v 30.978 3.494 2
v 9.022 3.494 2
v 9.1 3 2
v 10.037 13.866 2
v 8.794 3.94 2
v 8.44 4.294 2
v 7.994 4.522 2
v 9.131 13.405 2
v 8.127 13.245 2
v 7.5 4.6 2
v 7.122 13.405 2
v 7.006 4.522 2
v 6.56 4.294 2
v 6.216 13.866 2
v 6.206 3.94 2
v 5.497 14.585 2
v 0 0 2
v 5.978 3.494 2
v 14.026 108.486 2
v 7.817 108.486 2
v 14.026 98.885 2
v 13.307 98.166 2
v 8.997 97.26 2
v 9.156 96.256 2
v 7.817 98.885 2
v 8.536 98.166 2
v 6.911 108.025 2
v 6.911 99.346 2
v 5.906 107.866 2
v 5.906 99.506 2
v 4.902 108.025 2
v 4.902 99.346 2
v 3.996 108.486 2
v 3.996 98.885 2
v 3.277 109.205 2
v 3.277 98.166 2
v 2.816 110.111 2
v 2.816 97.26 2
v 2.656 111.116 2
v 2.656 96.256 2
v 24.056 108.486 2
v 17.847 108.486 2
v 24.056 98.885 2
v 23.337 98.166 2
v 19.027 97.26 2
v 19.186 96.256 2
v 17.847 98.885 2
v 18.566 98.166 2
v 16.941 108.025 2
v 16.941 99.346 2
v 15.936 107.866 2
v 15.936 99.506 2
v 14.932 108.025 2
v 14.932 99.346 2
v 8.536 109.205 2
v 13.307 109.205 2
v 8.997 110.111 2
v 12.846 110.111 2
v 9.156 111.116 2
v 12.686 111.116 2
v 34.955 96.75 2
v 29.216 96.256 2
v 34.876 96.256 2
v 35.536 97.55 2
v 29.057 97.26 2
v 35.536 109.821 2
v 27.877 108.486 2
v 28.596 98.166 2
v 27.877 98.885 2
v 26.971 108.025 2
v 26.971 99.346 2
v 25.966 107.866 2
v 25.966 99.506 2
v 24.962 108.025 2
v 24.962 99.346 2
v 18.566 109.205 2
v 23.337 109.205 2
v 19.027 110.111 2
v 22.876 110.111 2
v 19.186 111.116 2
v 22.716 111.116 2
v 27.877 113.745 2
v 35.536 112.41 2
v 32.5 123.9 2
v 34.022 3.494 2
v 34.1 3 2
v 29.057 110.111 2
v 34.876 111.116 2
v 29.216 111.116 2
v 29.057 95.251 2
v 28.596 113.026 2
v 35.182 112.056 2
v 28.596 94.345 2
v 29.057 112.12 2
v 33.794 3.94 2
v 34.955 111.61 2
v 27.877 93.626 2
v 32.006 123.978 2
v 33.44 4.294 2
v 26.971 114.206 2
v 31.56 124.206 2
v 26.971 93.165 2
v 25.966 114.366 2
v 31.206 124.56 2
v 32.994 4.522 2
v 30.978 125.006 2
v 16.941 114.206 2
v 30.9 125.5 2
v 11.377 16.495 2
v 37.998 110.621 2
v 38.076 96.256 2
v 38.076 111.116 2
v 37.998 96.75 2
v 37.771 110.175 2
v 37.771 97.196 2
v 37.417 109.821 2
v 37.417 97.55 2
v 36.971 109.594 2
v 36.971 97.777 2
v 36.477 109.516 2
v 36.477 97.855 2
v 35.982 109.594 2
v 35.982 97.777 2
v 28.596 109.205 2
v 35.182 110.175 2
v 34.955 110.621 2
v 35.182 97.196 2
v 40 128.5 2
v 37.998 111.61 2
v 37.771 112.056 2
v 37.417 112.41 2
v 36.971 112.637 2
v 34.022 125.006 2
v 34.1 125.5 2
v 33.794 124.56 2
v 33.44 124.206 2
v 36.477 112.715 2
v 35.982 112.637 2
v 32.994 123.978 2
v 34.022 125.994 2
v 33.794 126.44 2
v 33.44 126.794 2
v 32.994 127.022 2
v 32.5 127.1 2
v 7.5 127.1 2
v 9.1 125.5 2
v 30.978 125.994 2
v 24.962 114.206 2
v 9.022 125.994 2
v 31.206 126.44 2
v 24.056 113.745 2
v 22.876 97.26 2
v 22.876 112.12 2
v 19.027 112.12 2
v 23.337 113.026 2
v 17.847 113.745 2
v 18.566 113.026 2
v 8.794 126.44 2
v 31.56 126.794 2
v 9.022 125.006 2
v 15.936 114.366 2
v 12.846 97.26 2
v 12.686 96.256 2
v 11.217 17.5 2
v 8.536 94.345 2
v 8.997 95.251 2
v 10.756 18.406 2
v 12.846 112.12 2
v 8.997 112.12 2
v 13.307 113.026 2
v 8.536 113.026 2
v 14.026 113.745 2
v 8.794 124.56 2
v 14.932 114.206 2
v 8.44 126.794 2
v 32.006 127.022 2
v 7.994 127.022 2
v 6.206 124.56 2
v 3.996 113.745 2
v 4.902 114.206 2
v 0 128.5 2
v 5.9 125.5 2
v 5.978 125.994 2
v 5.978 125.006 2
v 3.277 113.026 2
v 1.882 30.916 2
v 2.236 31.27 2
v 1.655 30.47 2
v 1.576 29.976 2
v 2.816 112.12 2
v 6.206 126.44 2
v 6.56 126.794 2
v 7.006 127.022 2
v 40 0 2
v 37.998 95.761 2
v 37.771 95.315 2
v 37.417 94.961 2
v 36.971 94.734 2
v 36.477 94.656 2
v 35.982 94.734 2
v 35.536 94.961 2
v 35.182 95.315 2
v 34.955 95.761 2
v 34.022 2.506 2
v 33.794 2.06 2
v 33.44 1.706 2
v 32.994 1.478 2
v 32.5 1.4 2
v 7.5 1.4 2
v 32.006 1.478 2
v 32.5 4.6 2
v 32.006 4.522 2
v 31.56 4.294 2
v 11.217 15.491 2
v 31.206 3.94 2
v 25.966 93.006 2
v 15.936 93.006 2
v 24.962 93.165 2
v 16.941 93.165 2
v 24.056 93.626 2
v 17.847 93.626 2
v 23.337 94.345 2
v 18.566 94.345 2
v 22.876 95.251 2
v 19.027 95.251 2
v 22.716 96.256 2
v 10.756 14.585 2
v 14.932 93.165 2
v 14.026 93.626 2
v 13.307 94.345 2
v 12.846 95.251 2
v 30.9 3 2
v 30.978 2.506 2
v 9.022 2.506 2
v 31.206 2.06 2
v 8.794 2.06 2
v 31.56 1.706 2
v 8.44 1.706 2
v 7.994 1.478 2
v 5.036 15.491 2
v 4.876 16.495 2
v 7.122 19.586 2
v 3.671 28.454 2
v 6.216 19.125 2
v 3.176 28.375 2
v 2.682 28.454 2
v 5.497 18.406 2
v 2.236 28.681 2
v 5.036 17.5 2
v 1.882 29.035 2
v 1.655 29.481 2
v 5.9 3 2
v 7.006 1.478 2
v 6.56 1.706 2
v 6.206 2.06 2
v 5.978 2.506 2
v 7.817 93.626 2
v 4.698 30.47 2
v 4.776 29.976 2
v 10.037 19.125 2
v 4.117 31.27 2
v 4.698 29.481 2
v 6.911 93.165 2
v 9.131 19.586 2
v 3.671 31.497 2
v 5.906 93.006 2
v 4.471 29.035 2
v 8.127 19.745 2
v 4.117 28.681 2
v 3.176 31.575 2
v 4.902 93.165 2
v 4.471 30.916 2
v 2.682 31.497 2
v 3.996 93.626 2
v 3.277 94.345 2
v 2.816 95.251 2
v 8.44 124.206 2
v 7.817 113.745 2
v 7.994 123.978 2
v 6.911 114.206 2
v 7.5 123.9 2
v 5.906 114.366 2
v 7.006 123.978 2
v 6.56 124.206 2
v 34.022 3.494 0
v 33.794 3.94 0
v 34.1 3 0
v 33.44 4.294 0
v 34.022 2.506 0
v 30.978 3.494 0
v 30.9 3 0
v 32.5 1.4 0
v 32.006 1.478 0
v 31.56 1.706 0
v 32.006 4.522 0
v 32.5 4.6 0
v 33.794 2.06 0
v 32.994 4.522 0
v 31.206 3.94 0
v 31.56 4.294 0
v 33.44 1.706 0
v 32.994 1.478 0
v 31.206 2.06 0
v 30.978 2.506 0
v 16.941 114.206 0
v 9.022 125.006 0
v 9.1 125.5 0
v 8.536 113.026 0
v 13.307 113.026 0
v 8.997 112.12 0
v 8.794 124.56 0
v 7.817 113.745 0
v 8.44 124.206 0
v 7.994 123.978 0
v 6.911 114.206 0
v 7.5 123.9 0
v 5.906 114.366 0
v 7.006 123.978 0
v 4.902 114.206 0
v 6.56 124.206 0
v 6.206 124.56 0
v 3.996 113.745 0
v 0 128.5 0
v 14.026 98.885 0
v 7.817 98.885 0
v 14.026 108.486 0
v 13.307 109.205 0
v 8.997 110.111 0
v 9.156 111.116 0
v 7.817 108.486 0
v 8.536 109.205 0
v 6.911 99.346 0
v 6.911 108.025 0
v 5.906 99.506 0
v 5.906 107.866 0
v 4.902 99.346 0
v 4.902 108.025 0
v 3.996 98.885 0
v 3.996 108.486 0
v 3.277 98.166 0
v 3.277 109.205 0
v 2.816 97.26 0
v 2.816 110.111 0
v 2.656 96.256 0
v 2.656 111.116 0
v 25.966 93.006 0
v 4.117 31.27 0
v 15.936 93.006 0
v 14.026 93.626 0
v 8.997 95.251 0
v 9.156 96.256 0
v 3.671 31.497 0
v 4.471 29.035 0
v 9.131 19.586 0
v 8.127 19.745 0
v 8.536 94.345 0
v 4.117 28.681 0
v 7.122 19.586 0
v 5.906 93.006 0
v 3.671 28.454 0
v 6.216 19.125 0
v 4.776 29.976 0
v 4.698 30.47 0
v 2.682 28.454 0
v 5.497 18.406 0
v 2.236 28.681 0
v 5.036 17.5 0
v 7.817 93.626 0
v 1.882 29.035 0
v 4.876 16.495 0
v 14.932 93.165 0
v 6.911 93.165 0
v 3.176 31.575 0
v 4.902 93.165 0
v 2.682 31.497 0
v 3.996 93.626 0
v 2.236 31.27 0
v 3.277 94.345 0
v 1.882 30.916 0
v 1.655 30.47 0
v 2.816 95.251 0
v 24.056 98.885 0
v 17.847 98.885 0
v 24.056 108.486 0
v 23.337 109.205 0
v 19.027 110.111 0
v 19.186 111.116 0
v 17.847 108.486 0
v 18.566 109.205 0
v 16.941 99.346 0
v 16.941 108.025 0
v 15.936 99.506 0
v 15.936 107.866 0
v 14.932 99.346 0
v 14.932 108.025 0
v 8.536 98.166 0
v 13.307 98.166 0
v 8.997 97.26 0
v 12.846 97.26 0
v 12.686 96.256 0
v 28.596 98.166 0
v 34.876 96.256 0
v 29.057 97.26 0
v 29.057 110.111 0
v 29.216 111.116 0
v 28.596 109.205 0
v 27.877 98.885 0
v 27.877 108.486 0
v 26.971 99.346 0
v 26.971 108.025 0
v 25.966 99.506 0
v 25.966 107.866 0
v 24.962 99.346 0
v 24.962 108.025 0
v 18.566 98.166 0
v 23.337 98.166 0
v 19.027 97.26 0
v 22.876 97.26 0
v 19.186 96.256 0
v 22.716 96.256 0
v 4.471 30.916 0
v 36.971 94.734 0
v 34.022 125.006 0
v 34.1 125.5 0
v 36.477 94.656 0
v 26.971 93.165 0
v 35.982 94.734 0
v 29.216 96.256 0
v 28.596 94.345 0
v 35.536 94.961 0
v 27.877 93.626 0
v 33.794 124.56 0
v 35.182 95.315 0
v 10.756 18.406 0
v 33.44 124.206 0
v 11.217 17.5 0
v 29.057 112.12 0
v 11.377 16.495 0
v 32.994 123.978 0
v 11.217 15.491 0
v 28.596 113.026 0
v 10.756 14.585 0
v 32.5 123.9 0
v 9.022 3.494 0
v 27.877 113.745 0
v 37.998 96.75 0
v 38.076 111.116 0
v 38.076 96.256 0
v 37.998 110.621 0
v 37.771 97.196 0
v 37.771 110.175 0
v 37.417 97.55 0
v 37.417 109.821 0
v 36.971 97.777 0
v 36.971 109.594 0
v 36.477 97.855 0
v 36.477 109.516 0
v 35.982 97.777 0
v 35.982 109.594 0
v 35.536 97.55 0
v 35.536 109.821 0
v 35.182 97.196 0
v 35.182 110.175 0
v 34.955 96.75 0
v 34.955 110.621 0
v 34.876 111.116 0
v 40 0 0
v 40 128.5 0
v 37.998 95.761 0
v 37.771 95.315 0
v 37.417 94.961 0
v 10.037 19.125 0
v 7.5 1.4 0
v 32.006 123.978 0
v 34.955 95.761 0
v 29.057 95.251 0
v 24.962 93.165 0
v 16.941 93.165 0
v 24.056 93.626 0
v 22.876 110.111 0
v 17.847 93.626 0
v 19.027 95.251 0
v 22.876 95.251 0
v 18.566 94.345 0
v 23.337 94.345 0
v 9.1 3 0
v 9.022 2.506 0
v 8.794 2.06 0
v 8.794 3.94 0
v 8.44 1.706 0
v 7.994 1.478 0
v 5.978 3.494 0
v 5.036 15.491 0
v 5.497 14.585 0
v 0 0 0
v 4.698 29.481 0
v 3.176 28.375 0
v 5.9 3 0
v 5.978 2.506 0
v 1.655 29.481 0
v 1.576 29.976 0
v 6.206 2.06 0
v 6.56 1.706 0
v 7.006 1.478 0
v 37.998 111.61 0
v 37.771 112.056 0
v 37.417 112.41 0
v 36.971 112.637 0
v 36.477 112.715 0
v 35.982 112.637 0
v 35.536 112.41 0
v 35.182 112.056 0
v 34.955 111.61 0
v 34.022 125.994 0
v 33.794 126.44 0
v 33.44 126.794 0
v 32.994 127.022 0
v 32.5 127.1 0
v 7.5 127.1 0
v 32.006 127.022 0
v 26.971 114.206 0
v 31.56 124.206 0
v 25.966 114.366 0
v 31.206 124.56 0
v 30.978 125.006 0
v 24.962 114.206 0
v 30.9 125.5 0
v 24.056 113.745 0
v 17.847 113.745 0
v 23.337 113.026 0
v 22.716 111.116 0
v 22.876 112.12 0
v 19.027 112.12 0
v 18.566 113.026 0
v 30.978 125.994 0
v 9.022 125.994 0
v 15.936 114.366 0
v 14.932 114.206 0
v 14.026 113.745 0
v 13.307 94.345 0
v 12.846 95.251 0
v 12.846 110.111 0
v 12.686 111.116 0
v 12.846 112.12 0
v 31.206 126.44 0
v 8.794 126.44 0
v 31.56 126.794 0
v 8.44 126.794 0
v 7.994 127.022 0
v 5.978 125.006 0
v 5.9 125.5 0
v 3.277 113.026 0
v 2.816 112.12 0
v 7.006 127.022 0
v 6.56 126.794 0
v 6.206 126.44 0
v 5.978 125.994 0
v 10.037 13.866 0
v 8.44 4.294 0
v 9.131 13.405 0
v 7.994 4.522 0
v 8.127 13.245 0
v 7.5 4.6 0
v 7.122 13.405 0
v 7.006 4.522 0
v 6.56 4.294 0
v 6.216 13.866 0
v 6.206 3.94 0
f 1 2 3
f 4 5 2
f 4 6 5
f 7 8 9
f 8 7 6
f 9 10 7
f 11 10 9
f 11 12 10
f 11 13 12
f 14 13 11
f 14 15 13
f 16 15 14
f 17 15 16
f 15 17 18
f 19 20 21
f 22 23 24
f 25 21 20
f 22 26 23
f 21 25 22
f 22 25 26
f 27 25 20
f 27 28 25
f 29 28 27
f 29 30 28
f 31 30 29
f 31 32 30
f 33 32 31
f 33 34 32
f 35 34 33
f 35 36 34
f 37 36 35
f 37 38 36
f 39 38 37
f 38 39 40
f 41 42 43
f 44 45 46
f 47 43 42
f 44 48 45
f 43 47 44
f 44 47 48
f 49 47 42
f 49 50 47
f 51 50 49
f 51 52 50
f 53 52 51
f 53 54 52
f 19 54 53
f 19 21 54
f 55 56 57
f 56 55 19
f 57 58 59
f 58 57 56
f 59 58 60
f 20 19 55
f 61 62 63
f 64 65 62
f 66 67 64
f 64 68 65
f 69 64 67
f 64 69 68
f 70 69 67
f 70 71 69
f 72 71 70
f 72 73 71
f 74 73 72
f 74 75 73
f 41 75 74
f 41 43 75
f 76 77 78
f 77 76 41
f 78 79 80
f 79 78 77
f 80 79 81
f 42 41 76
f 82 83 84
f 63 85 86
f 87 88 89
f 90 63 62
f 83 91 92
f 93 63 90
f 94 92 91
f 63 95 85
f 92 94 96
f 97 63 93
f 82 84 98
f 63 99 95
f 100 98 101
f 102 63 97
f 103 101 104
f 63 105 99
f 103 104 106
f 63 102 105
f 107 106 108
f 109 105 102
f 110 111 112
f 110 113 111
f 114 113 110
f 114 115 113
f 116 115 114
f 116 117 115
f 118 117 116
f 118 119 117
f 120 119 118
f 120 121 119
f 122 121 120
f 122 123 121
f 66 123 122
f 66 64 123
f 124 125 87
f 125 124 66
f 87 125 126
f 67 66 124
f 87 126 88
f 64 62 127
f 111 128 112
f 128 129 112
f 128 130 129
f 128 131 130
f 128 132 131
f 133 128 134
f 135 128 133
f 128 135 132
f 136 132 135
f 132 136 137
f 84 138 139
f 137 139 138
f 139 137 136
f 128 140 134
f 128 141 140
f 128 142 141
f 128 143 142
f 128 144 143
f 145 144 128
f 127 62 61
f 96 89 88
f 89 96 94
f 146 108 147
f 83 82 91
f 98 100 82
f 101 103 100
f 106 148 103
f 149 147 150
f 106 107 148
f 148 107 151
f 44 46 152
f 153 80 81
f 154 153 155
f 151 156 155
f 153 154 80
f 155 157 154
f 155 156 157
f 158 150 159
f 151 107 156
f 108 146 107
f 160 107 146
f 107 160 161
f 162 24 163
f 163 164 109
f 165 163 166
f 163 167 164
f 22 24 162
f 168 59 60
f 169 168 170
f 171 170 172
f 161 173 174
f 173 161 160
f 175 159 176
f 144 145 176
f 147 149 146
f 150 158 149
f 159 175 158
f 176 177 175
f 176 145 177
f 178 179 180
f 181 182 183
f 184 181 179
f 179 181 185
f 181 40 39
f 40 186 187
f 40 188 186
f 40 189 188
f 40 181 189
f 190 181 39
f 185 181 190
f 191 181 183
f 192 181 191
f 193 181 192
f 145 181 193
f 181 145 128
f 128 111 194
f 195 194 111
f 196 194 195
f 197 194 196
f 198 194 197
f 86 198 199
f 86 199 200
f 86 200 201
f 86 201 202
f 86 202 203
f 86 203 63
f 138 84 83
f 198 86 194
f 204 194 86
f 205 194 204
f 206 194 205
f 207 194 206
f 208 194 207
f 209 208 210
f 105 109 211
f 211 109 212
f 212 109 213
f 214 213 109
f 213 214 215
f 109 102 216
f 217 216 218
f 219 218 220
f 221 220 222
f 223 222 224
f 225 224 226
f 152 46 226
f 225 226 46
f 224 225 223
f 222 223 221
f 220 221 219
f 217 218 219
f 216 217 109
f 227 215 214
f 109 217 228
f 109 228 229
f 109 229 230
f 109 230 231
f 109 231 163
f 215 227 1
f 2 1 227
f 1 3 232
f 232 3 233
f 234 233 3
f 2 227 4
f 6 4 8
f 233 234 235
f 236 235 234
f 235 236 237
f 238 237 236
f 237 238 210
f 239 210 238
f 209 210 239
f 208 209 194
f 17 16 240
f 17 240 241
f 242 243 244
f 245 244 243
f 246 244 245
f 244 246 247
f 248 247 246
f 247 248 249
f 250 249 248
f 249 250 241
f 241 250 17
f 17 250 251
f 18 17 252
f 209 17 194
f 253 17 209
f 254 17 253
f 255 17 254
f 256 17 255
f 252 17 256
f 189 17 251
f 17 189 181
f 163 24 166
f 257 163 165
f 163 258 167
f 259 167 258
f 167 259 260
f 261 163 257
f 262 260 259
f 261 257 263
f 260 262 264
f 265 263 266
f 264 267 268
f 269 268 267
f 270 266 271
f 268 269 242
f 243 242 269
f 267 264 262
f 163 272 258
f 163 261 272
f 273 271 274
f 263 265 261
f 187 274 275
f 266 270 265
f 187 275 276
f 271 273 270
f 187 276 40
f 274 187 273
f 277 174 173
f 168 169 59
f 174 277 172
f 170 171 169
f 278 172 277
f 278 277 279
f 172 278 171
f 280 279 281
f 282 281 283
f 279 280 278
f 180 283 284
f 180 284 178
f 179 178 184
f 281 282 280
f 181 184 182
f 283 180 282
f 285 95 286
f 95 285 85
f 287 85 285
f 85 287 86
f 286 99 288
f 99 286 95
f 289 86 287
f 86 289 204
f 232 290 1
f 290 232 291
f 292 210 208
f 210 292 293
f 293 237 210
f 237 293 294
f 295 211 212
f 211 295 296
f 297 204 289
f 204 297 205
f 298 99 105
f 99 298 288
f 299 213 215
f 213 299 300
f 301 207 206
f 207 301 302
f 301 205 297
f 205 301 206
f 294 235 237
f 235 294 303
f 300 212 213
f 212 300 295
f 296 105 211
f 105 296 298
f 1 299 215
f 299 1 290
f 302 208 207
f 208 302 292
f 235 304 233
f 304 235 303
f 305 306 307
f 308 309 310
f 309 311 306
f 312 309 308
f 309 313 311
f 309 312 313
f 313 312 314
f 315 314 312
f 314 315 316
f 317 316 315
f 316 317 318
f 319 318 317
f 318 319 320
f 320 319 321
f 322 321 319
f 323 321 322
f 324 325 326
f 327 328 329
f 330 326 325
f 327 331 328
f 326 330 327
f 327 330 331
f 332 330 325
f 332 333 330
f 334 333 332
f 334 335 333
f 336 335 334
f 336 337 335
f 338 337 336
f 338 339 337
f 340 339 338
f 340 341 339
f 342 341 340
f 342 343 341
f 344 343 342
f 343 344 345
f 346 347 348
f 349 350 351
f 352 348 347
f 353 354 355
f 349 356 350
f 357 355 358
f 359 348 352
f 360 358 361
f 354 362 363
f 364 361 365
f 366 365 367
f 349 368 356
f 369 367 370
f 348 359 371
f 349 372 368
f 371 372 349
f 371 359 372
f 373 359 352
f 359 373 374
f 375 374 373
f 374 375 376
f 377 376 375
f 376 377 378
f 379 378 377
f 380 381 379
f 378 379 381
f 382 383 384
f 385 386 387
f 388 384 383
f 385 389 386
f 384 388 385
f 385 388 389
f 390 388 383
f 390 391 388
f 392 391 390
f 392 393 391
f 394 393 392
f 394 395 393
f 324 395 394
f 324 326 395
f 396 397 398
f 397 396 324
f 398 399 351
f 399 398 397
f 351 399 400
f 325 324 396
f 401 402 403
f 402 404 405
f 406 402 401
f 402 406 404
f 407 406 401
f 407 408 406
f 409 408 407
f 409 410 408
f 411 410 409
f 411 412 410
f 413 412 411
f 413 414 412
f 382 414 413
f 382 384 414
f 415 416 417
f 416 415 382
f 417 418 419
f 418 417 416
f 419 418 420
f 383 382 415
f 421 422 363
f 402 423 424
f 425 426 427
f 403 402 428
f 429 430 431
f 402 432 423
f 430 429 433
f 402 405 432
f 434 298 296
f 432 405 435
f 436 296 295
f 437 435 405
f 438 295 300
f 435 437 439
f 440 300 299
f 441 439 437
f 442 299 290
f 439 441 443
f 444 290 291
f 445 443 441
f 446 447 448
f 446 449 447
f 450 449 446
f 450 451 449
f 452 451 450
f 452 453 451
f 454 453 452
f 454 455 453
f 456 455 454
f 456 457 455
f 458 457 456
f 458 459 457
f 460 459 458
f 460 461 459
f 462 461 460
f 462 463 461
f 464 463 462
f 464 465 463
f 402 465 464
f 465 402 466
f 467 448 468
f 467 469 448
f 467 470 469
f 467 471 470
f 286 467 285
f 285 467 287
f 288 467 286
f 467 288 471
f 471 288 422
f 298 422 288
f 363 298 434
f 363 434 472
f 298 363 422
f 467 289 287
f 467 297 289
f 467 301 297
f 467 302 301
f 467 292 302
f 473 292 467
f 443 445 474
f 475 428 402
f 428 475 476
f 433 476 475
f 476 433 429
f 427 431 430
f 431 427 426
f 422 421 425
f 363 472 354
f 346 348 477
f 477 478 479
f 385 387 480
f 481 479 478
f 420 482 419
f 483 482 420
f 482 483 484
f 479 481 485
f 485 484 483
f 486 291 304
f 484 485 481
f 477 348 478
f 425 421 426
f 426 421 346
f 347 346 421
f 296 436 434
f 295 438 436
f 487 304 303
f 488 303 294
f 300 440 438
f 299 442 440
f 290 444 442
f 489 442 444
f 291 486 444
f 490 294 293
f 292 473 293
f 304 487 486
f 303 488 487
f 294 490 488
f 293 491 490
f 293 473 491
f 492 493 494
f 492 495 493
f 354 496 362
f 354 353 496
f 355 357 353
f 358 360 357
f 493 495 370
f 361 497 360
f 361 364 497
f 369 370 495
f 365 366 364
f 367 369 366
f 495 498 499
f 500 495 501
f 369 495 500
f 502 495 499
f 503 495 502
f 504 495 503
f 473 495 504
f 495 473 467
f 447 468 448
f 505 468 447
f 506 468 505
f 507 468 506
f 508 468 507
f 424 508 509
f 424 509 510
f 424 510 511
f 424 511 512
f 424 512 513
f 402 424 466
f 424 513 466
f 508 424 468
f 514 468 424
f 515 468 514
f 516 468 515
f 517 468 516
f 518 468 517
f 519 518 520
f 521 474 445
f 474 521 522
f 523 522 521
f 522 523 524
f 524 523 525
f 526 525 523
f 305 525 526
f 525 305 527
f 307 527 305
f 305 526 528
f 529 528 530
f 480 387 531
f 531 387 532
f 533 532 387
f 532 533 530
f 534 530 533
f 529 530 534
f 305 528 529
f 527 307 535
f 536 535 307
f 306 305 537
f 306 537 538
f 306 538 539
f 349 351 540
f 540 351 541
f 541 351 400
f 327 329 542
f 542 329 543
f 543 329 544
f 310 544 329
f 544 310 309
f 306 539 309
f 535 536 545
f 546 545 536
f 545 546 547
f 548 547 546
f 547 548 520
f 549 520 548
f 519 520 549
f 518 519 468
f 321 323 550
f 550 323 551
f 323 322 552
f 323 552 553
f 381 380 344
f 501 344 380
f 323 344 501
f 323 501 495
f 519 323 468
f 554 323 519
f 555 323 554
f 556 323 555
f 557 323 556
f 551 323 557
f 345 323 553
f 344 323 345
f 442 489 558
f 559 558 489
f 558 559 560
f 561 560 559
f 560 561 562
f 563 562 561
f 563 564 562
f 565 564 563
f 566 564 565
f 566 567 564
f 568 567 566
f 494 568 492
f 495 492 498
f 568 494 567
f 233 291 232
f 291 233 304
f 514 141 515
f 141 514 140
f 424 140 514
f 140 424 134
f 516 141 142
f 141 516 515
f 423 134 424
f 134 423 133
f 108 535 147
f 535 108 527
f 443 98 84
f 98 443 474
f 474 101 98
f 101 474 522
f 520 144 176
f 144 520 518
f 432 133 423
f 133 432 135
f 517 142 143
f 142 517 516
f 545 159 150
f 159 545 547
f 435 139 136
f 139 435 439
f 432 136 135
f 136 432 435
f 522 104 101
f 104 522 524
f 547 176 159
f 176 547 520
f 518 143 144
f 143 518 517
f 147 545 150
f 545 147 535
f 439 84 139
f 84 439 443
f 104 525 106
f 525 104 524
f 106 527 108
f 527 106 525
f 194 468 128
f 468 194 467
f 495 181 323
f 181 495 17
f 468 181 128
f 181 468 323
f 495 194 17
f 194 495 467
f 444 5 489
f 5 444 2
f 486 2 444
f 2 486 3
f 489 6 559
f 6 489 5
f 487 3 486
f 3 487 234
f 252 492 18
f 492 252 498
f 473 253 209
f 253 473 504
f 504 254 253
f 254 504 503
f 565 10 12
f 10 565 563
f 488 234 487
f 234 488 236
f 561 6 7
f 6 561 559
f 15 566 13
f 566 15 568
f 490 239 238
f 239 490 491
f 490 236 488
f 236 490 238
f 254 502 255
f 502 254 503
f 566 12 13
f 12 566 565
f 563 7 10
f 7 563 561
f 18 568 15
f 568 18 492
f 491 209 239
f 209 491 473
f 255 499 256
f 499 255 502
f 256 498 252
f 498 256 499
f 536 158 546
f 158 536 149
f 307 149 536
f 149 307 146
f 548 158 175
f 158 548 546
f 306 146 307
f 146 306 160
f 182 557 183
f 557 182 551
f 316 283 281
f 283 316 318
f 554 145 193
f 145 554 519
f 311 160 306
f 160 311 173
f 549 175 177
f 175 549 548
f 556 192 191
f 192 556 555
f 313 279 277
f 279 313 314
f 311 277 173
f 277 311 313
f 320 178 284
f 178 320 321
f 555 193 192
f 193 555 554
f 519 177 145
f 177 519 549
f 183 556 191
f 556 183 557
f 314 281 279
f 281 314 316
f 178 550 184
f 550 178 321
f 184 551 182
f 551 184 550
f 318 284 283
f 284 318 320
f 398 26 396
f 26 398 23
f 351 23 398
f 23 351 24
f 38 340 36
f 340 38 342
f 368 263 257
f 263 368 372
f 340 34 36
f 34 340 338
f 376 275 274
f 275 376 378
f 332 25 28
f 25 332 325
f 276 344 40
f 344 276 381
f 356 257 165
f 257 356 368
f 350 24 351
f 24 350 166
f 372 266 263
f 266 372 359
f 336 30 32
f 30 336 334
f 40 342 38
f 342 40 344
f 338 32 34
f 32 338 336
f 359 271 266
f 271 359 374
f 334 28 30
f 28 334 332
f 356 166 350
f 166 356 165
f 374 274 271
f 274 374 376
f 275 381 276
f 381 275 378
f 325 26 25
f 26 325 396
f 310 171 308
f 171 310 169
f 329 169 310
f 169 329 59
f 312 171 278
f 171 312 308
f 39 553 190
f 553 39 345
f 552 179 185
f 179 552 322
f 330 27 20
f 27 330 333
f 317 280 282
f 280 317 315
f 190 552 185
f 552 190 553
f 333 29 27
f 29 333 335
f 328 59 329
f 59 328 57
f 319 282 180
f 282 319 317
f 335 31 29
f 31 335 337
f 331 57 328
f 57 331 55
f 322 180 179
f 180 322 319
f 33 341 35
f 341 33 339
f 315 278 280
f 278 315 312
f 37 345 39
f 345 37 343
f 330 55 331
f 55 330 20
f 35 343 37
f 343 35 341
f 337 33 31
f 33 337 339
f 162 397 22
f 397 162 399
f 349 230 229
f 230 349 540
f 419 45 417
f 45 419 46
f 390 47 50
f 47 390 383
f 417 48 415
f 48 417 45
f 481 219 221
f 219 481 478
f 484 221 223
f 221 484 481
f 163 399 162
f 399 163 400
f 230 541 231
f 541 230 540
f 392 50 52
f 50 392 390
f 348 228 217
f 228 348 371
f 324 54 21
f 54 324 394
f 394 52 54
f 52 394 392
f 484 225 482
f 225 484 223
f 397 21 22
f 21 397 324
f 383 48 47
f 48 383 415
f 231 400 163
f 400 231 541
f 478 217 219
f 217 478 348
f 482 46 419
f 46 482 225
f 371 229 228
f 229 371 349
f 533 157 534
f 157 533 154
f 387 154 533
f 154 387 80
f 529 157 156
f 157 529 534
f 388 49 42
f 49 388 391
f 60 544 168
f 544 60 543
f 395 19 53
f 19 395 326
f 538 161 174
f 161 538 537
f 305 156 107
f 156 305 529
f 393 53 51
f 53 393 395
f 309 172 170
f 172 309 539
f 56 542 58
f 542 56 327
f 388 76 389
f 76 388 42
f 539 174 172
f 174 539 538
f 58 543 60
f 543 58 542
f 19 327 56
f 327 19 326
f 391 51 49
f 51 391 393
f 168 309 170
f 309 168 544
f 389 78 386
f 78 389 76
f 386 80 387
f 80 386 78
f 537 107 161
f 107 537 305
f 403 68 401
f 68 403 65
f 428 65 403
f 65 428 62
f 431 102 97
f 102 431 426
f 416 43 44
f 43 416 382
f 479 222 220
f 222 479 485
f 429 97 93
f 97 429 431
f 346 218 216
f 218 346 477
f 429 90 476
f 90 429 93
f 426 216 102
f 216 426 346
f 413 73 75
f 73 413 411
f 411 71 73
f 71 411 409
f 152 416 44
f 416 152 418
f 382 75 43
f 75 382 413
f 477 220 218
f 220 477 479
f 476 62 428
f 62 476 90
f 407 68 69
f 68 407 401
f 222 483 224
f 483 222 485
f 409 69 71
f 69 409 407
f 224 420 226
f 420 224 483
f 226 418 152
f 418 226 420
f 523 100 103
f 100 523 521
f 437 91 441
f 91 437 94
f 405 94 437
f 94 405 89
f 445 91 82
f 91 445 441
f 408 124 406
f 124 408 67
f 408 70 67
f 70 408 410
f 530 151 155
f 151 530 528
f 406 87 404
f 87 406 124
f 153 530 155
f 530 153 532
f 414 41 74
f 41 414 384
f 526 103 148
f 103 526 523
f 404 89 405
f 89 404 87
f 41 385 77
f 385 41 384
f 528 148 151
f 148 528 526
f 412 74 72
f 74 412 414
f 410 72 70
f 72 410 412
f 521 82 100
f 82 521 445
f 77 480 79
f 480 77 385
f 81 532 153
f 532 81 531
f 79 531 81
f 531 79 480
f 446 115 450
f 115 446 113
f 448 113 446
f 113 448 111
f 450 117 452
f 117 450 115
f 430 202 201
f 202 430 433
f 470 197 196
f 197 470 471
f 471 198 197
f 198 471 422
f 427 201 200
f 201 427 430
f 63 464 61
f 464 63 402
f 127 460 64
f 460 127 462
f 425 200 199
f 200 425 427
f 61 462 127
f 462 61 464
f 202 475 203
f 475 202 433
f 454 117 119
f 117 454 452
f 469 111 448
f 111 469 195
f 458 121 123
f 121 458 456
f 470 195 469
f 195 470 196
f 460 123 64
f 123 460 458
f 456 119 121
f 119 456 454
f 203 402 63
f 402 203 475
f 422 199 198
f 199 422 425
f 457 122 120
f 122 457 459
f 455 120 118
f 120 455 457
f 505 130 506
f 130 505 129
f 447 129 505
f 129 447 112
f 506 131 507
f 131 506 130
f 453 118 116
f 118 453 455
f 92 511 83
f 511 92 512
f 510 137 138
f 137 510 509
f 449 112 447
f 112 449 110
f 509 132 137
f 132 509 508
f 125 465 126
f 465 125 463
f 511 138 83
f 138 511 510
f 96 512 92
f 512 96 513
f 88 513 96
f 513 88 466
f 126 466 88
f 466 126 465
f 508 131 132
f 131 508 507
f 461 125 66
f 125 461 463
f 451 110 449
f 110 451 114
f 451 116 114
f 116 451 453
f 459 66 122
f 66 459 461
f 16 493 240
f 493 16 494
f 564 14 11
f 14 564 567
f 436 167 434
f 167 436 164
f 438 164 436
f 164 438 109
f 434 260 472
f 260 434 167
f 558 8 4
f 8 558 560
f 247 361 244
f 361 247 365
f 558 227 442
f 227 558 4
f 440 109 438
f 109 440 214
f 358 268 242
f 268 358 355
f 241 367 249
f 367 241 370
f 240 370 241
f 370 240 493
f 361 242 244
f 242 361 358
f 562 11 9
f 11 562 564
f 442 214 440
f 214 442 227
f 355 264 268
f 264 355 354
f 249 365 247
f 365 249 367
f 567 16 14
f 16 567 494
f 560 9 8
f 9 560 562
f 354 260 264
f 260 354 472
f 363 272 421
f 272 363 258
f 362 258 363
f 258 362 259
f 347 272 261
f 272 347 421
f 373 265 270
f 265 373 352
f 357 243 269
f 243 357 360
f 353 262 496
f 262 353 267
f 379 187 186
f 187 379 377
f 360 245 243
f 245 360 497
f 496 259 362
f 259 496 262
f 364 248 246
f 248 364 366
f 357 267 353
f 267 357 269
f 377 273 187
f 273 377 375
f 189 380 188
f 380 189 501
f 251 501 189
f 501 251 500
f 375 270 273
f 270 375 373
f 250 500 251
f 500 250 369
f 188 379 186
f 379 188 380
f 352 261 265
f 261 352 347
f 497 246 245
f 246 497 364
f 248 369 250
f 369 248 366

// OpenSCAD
// file: ../../../share/openscad/eurorack-panel.scad
// this is based on A100 spec from doepfer https://doepfer.de/a100_man/a100m_e.htm

eurorack_panel_height = function() 128.5;
eurorack_panel_width = function(width_in_hp) width_in_hp * 5;

module eurorack_panel(width_in_hp, thickness=2) {
    difference() {
        cube([eurorack_panel_width(width_in_hp), eurorack_panel_height(), thickness]);

        translate([7.5, 3, 0])
            cylinder(thickness, d=3.2, $fn=20);
        translate([7.5, eurorack_panel_height() - 3, 0])
            cylinder(thickness, d=3.2, $fn=20);

        if (width_in_hp >= 8) {
            translate([eurorack_panel_width(width_in_hp) - 7.5, 3, 0])
                cylinder(thickness, d=3.2, $fn=20);
            translate([eurorack_panel_width(width_in_hp) - 7.5, eurorack_panel_height() - 3, 0])
                cylinder(thickness, d=3.2, $fn=20);
        }
    }
}
// main file
/*
 * SPDX-FileCopyrightText: 2021-2022 Rafael G. Martins <rafael@rafaelmartins.eng.br>
 * SPDX-License-Identifier: CERN-OHL-S-2.0
 */

include <../../../share/openscad/eurorack-panel.scad>

width_in_hp = 8;
thickness = 2;

pcb_width = 38.227;
pcb_height = 110.109;

pcb0_x = (eurorack_panel_width(width_in_hp) - pcb_width) / 2;
pcb0_y = (eurorack_panel_height() - pcb_height) / 2;

led_d = 3.2;
led_in_distance_x = 2.29;
led_in_distance_y = 20.78;
led_out_distance_y = 87.06;
led_out_distance_x = 35.59;
led_out_spacing = 14.86;

jack_d = 6.5;
jack_in_distance_x = 7.24;
jack_in_distance_y = 7.3;
jack_out_distance_x = 5.02;
jack_out_distance_y = 87.06;
jack_out_spacing_x = 10.03;
jack_out_spacing_y = 14.86;

difference() {
    eurorack_panel(width_in_hp, thickness);

    translate([pcb0_x, pcb0_y, 0]) {
        translate([jack_in_distance_x, jack_in_distance_y, 0])
            cylinder(thickness, d=jack_d, $fn=20);

        translate([led_in_distance_x, led_in_distance_y, 0])
            cylinder(thickness, d=led_d, $fn=20);

        for (i = [0 : 2]) {
            for (j = [0 : 1]) {
                translate([jack_out_distance_x + i * jack_out_spacing_x,
                           jack_out_distance_y + j * jack_out_spacing_y, 0])
                    cylinder(thickness, d=jack_d, $fn=20);
            }
        }

        translate([led_out_distance_x, led_out_distance_y, 0]) {
            cylinder(thickness, d=led_d, $fn=20);
            translate([0, led_out_spacing, 0])
                cylinder(thickness, d=led_d, $fn=20);
        }
    }
}
